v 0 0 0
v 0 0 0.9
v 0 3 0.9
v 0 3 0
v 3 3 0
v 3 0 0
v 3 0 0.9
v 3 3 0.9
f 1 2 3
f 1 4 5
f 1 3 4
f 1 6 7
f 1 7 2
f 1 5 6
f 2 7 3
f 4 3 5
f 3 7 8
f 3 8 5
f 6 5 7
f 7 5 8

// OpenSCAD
/* Warning, this is a very basic generator with a lot of approximation 
input data : [DFN, M9X, 3x3x0.9mm, 6, , A, C04-00135A]
generated by com.zoubworld.electronics.cad.model3d.Basic
Date : Sun Feb 15 10:50:48 CET 2026
*/

//body
color("black")
translate([0,0,0])
cube([3.0,3.0,0.9], center=false);
